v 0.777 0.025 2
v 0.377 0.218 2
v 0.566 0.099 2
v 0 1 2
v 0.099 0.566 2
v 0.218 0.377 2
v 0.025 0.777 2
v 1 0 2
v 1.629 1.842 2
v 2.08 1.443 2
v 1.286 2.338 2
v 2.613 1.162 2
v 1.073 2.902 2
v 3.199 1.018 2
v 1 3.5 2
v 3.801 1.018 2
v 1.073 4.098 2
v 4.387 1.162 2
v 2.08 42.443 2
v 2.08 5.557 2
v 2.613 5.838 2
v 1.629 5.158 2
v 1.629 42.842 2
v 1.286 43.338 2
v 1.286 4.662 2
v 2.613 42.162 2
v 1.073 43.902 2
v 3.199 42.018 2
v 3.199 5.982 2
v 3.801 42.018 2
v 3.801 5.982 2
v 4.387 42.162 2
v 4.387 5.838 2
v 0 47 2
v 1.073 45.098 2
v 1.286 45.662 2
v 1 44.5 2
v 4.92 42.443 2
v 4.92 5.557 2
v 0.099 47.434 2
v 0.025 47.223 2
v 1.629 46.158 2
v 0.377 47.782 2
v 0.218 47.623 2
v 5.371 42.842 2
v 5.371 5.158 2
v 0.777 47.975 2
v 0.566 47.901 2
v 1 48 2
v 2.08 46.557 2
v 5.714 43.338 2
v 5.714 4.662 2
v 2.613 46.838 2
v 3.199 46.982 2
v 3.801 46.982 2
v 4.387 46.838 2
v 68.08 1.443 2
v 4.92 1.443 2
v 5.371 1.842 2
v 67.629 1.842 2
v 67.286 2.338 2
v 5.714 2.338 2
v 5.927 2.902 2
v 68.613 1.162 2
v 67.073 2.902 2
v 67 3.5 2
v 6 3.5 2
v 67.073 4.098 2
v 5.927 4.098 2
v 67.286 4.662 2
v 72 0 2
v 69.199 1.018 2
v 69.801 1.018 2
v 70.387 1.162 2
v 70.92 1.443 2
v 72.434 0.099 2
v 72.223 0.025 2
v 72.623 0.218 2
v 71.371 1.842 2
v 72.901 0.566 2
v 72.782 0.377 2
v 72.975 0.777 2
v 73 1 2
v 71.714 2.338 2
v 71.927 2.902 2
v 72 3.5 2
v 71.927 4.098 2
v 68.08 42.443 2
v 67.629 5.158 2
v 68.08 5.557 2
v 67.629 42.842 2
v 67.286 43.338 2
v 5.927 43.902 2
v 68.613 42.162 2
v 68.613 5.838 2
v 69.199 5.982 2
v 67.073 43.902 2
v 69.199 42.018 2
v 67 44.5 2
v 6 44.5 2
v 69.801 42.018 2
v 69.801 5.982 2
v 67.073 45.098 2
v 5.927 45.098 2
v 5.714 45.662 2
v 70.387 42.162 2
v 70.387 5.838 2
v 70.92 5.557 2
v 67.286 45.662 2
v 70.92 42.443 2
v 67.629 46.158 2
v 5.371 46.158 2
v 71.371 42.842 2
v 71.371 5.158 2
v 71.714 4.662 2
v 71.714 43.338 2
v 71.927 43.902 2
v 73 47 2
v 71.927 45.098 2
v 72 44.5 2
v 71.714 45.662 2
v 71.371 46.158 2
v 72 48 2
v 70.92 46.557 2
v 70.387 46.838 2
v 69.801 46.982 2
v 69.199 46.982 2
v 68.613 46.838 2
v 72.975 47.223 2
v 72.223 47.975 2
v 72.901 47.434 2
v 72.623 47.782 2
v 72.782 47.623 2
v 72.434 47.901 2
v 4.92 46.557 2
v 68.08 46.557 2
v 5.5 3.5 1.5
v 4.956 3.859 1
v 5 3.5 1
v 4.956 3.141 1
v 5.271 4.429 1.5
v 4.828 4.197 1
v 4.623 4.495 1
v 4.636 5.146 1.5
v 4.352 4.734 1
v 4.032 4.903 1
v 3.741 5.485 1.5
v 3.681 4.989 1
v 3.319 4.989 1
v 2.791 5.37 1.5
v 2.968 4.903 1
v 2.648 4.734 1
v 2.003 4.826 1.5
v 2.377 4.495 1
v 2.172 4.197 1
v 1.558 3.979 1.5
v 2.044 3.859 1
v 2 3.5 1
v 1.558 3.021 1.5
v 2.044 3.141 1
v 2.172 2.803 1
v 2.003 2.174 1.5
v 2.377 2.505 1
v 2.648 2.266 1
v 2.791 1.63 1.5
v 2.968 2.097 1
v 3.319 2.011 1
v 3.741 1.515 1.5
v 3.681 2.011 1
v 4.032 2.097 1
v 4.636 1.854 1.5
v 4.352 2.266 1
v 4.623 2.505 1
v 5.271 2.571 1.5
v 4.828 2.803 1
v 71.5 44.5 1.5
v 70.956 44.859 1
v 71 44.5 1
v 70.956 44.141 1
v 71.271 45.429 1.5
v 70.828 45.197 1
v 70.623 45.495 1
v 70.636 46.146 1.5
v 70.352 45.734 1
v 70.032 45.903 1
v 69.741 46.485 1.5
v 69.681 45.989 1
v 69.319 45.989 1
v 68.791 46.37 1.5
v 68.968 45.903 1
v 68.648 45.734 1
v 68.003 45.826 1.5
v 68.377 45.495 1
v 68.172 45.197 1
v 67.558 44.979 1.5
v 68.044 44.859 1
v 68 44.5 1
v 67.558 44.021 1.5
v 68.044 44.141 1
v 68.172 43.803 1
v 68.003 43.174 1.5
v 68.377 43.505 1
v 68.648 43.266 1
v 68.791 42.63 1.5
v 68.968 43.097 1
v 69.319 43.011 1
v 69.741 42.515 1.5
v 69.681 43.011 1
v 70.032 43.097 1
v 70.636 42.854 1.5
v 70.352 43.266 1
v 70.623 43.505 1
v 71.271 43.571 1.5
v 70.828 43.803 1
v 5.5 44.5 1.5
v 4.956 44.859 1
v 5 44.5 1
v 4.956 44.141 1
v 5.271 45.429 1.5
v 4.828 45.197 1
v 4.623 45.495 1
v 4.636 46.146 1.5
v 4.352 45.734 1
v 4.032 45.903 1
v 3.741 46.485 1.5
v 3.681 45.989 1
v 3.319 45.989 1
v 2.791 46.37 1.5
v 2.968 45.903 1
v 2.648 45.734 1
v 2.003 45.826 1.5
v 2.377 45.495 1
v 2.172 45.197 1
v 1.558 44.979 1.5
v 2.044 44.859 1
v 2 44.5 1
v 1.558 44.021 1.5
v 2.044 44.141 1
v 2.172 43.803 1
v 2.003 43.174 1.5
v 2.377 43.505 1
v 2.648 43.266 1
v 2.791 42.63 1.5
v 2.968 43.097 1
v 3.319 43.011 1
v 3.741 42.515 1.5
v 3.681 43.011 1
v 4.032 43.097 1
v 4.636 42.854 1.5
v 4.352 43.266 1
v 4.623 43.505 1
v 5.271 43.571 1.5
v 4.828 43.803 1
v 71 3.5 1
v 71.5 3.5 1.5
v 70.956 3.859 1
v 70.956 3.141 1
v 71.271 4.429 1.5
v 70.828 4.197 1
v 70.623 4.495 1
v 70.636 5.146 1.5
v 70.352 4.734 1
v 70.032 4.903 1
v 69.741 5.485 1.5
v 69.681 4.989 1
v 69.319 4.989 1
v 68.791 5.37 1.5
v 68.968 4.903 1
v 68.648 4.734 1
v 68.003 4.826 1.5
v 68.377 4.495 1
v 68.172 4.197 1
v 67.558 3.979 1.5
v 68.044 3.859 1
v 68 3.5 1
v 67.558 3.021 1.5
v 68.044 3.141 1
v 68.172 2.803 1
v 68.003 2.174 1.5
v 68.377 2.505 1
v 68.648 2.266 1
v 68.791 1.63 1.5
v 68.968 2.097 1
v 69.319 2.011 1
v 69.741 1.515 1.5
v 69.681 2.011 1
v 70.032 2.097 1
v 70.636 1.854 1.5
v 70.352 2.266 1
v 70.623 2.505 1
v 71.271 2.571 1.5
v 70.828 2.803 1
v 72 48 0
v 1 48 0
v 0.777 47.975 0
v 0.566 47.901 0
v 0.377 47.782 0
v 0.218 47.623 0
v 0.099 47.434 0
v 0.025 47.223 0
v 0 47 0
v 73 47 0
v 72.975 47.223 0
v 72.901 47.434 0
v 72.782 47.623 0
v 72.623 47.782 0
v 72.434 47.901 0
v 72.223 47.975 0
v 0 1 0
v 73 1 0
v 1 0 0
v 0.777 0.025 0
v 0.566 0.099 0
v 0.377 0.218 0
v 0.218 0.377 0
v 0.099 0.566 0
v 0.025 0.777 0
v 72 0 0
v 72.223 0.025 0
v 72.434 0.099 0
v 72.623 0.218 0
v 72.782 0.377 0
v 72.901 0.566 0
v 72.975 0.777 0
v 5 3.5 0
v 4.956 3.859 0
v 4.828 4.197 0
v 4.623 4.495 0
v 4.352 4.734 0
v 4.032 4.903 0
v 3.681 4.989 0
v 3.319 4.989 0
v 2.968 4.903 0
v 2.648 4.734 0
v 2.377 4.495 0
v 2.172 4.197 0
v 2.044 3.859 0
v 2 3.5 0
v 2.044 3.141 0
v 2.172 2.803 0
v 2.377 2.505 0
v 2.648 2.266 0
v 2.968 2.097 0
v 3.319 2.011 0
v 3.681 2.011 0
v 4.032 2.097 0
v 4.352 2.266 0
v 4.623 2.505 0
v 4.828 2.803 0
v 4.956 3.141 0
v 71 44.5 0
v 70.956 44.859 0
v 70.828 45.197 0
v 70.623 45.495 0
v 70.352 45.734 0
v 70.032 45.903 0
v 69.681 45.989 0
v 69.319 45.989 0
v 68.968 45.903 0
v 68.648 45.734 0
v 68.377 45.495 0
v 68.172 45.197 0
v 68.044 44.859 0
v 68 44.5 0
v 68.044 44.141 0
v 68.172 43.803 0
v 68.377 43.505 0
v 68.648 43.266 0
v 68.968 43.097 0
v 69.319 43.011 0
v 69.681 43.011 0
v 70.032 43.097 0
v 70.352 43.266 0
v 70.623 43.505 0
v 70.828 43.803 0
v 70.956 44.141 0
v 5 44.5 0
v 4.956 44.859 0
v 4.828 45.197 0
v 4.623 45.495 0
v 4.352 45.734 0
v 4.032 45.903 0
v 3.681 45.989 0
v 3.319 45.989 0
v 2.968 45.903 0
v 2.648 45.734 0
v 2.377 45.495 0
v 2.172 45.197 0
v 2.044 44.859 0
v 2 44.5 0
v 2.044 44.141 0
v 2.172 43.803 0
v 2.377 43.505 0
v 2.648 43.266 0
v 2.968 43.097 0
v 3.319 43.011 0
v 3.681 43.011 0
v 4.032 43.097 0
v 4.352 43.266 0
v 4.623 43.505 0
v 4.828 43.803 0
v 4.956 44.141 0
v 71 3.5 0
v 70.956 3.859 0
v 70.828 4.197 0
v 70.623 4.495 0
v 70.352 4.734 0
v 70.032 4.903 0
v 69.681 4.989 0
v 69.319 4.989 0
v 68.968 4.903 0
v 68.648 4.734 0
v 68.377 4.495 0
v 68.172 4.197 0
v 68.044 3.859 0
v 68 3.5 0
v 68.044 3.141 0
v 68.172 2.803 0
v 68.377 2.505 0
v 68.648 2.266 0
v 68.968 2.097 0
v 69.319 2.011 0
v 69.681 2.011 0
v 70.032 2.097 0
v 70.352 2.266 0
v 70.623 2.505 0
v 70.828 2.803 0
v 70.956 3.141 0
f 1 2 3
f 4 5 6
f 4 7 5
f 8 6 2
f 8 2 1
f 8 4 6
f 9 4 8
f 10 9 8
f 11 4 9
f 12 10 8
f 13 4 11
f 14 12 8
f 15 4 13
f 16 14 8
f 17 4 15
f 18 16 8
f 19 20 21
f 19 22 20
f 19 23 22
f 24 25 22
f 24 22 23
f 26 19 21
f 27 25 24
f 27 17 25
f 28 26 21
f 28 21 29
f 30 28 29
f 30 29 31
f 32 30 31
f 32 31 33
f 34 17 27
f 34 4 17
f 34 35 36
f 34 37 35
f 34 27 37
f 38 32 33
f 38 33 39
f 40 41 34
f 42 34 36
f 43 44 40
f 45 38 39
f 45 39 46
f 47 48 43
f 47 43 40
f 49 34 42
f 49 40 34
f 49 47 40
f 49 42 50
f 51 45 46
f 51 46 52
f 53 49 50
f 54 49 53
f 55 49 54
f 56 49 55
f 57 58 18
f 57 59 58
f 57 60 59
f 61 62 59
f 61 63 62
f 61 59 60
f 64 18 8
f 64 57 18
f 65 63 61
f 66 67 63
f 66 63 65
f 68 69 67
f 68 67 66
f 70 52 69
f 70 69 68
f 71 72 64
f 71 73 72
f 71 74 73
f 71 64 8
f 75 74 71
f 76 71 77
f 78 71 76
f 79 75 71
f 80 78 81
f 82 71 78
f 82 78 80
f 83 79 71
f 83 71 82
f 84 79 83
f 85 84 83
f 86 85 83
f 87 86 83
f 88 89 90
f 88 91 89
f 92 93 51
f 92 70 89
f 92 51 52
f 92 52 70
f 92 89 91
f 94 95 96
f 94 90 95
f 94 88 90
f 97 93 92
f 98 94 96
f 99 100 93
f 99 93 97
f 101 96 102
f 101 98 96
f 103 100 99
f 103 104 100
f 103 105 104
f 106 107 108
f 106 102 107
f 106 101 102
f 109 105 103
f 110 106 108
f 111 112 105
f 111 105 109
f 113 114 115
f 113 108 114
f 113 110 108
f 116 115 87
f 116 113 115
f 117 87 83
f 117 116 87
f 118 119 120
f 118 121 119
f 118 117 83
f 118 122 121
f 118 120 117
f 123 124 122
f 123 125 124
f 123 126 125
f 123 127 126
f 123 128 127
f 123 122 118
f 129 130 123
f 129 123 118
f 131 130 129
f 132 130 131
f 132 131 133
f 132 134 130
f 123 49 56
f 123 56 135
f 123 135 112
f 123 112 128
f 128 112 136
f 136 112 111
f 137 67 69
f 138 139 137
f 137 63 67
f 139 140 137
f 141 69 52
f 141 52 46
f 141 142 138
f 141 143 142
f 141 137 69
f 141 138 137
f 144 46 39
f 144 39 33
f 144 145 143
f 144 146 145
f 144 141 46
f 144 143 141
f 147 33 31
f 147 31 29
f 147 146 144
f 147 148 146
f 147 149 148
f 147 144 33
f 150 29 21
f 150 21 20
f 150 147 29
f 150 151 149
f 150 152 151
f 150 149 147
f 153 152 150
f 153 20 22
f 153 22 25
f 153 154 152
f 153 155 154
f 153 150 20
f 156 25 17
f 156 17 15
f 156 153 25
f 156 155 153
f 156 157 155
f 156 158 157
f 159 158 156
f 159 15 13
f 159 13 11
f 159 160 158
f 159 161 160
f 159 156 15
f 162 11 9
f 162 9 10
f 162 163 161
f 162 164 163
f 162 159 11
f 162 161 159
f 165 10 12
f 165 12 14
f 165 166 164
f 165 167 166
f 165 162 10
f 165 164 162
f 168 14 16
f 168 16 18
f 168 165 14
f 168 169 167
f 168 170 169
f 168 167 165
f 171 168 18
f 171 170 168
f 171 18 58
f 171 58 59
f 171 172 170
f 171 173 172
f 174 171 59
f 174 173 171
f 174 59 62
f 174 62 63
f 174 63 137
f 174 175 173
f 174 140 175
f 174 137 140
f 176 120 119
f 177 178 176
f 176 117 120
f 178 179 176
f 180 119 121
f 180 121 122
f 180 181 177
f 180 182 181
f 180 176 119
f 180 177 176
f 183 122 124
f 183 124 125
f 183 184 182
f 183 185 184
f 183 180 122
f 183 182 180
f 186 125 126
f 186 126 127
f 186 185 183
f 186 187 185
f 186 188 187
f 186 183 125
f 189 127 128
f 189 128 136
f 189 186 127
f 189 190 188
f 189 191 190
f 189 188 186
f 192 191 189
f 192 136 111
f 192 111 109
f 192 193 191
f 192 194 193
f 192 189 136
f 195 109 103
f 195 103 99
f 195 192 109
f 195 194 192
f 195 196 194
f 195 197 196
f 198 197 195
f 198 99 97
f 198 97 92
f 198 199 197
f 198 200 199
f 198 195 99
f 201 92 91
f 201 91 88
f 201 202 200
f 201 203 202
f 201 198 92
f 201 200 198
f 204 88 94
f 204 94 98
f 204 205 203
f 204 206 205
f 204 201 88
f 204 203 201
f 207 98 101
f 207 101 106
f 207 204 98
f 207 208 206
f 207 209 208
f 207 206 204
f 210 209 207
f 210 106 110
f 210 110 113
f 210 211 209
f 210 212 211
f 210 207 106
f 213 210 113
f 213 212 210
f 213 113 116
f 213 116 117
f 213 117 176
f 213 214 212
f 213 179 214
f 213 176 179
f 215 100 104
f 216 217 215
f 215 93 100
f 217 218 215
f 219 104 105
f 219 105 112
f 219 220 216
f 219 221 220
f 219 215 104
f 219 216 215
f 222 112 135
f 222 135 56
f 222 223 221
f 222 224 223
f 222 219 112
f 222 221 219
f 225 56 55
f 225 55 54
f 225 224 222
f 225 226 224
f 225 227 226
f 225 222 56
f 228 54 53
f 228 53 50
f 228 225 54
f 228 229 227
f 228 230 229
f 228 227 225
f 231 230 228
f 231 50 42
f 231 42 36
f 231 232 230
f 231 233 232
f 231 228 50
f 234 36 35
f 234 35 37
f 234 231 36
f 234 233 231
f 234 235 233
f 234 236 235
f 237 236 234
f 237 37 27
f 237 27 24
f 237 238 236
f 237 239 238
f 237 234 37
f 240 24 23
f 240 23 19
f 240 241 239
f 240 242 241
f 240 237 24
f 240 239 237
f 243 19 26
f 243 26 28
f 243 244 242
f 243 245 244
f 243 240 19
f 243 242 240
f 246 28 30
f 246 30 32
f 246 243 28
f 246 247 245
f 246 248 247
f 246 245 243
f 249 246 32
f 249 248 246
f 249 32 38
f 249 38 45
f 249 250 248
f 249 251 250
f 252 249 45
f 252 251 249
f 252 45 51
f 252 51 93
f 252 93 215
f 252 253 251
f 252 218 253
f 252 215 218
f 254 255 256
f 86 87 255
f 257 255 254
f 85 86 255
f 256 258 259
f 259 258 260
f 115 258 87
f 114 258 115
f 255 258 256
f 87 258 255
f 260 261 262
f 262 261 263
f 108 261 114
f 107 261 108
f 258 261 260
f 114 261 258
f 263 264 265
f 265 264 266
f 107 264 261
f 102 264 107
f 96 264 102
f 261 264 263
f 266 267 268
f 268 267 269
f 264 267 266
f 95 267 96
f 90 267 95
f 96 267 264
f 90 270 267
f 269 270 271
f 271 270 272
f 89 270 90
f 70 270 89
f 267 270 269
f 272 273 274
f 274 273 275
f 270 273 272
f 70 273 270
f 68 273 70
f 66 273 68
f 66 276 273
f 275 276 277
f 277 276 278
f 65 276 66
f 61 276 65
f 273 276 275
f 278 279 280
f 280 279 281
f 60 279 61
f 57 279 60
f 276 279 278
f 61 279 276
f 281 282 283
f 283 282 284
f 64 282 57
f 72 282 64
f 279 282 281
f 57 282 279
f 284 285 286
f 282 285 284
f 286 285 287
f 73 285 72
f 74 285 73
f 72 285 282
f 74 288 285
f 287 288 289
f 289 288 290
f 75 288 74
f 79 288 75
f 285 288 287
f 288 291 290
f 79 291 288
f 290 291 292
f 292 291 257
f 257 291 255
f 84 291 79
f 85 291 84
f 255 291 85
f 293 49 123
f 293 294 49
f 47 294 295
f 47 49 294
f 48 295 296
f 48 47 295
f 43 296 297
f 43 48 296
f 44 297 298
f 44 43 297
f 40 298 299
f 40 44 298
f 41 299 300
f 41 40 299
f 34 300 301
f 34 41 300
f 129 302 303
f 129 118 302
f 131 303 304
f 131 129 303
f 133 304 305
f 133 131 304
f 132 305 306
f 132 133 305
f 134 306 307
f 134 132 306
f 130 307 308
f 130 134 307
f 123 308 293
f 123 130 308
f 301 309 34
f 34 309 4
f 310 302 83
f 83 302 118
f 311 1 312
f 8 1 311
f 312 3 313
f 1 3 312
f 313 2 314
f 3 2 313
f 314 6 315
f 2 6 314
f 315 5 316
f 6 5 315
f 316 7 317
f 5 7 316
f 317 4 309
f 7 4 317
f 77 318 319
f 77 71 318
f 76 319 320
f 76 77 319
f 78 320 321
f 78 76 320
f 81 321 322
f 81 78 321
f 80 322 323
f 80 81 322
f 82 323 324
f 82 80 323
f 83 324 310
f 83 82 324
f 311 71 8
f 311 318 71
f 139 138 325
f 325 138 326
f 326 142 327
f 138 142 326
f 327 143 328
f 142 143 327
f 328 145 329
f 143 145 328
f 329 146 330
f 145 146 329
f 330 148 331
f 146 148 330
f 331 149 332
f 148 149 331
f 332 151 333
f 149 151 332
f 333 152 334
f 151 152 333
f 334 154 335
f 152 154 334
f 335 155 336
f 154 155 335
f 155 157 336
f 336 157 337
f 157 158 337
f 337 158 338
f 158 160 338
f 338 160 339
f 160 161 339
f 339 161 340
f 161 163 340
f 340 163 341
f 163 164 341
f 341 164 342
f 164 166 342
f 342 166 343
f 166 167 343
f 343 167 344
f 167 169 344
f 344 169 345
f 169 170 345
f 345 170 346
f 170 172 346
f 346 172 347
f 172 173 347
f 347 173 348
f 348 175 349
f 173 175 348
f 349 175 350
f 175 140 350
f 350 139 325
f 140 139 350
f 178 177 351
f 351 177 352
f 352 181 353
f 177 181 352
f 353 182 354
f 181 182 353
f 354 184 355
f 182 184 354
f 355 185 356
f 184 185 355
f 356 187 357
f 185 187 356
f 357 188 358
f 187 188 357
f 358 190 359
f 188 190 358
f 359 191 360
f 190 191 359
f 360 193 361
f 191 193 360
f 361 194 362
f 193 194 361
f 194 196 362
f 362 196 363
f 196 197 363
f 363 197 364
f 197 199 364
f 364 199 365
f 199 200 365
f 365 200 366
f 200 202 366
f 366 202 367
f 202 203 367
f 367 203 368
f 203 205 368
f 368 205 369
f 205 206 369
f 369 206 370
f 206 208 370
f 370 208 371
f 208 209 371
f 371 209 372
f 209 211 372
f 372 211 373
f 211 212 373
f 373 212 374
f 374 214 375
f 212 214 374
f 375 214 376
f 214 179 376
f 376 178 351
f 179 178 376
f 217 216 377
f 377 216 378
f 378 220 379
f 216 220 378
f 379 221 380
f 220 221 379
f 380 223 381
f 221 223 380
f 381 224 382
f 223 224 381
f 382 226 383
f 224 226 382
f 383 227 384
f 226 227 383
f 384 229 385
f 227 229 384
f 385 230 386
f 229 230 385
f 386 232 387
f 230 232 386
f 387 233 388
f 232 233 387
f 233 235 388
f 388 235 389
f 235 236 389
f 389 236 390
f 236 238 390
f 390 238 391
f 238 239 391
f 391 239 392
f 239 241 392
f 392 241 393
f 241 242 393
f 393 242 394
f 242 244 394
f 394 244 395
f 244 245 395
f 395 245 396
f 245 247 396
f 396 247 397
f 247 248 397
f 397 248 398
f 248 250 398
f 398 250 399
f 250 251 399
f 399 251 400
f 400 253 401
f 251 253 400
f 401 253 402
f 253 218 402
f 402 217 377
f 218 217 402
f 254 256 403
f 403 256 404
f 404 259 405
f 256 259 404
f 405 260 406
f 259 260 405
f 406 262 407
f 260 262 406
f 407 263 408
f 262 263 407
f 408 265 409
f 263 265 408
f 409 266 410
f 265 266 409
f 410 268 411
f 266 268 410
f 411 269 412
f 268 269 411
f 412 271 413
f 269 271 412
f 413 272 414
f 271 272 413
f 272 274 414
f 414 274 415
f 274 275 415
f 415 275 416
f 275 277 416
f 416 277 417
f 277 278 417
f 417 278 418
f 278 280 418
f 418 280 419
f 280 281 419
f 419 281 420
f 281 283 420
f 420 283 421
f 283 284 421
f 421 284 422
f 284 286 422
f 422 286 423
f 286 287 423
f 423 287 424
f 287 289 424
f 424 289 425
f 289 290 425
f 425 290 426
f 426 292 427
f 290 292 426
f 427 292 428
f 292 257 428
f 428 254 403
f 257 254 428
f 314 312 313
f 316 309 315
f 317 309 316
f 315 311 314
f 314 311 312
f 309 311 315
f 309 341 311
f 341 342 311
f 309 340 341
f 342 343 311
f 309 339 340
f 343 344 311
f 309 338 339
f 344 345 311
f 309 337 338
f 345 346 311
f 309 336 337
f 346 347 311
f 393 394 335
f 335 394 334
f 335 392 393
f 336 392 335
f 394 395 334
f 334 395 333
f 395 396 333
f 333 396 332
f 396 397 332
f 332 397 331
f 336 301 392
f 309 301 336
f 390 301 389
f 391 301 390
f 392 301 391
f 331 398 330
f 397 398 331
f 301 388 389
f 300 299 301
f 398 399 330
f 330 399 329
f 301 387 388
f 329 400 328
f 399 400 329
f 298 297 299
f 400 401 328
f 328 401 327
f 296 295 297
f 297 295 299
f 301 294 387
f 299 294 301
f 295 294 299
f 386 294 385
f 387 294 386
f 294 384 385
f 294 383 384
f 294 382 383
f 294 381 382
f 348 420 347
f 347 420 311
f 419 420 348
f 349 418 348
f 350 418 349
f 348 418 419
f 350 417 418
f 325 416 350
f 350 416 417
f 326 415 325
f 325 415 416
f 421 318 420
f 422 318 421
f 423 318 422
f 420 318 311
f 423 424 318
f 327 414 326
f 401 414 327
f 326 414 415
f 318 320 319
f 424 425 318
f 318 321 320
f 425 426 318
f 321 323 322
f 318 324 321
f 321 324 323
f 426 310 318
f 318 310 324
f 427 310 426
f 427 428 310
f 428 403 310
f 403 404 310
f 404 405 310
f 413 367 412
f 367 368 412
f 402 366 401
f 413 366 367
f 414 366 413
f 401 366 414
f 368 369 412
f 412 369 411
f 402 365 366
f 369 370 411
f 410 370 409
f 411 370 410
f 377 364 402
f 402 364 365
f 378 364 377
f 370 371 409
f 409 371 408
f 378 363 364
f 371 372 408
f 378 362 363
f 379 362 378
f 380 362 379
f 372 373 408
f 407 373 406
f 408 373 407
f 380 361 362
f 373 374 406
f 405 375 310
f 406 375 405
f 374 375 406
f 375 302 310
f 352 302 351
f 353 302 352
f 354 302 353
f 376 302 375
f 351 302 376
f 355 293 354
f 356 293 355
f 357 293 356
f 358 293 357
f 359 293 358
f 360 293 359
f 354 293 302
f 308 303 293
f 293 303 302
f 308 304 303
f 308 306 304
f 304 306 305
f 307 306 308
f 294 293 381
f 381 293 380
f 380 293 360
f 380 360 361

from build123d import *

# Parameters (mm, degrees)
SKETCH_W        = 73
SKETCH_H        = 48
PAD_DEPTH       = 2
FILLET_R        = 1
FILLET001_R     = 1
FILLET002_R     = 1
FILLET003_R     = 1
SKETCH002_R     = 1.5
POCKET_DEPTH    = 5
SKETCH003_R     = 1.5
POCKET001_DEPTH = 5
SKETCH004_R     = 1.5
POCKET002_DEPTH = 5
SKETCH005_R     = 1.5
POCKET003_DEPTH = 5
CHAMFER_SIZE    = 1
CHAMFER001_SIZE = 1
CHAMFER002_SIZE = 1
CHAMFER003_SIZE = 1


with BuildPart() as part:
    # Sketch → Pad (new body)
    with BuildSketch(Plane.XY):
        with Locations((36.5, 24)):
            Rectangle(SKETCH_W, SKETCH_H)
    extrude(amount=PAD_DEPTH)

    # Fillet
    fillet_edges = [part.edges().sort_by_distance(p)[0] for p in [
        (0, 0, 1),
    ]]
    fillet(fillet_edges, radius=FILLET_R)

    # Fillet001
    fillet001_edges = [part.edges().sort_by_distance(p)[0] for p in [
        (73, 0, 1),
    ]]
    fillet(fillet001_edges, radius=FILLET001_R)

    # Fillet002
    fillet002_edges = [part.edges().sort_by_distance(p)[0] for p in [
        (73, 48, 1),
    ]]
    fillet(fillet002_edges, radius=FILLET002_R)

    # Fillet003
    fillet003_edges = [part.edges().sort_by_distance(p)[0] for p in [
        (0, 48, 1),
    ]]
    fillet(fillet003_edges, radius=FILLET003_R)

    # Sketch002 (on Face10 of Fillet003) → Pocket (cut)
    with BuildSketch(Plane.XY.offset(2)):
        with Locations((3.5, 3.5)):
            Circle(SKETCH002_R)
    extrude(amount=-POCKET_DEPTH, mode=Mode.SUBTRACT)

    # Sketch003 (on Face11 of Pocket) → Pocket001 (cut)
    with BuildSketch(Plane.XY.offset(2)):
        with Locations((3.5, 44.5)):
            Circle(SKETCH003_R)
    extrude(amount=-POCKET001_DEPTH, mode=Mode.SUBTRACT)

    # Sketch004 (on Face12 of Pocket001) → Pocket002 (cut)
    with BuildSketch(Plane.XY.offset(2)):
        with Locations((69.5, 44.5)):
            Circle(SKETCH004_R)
    extrude(amount=-POCKET002_DEPTH, mode=Mode.SUBTRACT)

    # Sketch005 (on Face13 of Pocket002) → Pocket003 (cut)
    with BuildSketch(Plane.XY.offset(2)):
        with Locations((69.5, 3.5)):
            Circle(SKETCH005_R)
    extrude(amount=-POCKET003_DEPTH, mode=Mode.SUBTRACT)

    # Chamfer
    chamfer_edges = [part.edges().sort_by_distance(p)[0] for p in [
        (68, 3.5, 2),
    ]]
    chamfer(chamfer_edges, length=CHAMFER_SIZE)

    # Chamfer001
    chamfer001_edges = [part.edges().sort_by_distance(p)[0] for p in [
        (2, 44.5, 2),
    ]]
    chamfer(chamfer001_edges, length=CHAMFER001_SIZE)

    # Chamfer002
    chamfer002_edges = [part.edges().sort_by_distance(p)[0] for p in [
        (68, 44.5, 2),
    ]]
    chamfer(chamfer002_edges, length=CHAMFER002_SIZE)

    # Chamfer003
    chamfer003_edges = [part.edges().sort_by_distance(p)[0] for p in [
        (2, 3.5, 2),
    ]]
    chamfer(chamfer003_edges, length=CHAMFER003_SIZE)


solid = part.part
